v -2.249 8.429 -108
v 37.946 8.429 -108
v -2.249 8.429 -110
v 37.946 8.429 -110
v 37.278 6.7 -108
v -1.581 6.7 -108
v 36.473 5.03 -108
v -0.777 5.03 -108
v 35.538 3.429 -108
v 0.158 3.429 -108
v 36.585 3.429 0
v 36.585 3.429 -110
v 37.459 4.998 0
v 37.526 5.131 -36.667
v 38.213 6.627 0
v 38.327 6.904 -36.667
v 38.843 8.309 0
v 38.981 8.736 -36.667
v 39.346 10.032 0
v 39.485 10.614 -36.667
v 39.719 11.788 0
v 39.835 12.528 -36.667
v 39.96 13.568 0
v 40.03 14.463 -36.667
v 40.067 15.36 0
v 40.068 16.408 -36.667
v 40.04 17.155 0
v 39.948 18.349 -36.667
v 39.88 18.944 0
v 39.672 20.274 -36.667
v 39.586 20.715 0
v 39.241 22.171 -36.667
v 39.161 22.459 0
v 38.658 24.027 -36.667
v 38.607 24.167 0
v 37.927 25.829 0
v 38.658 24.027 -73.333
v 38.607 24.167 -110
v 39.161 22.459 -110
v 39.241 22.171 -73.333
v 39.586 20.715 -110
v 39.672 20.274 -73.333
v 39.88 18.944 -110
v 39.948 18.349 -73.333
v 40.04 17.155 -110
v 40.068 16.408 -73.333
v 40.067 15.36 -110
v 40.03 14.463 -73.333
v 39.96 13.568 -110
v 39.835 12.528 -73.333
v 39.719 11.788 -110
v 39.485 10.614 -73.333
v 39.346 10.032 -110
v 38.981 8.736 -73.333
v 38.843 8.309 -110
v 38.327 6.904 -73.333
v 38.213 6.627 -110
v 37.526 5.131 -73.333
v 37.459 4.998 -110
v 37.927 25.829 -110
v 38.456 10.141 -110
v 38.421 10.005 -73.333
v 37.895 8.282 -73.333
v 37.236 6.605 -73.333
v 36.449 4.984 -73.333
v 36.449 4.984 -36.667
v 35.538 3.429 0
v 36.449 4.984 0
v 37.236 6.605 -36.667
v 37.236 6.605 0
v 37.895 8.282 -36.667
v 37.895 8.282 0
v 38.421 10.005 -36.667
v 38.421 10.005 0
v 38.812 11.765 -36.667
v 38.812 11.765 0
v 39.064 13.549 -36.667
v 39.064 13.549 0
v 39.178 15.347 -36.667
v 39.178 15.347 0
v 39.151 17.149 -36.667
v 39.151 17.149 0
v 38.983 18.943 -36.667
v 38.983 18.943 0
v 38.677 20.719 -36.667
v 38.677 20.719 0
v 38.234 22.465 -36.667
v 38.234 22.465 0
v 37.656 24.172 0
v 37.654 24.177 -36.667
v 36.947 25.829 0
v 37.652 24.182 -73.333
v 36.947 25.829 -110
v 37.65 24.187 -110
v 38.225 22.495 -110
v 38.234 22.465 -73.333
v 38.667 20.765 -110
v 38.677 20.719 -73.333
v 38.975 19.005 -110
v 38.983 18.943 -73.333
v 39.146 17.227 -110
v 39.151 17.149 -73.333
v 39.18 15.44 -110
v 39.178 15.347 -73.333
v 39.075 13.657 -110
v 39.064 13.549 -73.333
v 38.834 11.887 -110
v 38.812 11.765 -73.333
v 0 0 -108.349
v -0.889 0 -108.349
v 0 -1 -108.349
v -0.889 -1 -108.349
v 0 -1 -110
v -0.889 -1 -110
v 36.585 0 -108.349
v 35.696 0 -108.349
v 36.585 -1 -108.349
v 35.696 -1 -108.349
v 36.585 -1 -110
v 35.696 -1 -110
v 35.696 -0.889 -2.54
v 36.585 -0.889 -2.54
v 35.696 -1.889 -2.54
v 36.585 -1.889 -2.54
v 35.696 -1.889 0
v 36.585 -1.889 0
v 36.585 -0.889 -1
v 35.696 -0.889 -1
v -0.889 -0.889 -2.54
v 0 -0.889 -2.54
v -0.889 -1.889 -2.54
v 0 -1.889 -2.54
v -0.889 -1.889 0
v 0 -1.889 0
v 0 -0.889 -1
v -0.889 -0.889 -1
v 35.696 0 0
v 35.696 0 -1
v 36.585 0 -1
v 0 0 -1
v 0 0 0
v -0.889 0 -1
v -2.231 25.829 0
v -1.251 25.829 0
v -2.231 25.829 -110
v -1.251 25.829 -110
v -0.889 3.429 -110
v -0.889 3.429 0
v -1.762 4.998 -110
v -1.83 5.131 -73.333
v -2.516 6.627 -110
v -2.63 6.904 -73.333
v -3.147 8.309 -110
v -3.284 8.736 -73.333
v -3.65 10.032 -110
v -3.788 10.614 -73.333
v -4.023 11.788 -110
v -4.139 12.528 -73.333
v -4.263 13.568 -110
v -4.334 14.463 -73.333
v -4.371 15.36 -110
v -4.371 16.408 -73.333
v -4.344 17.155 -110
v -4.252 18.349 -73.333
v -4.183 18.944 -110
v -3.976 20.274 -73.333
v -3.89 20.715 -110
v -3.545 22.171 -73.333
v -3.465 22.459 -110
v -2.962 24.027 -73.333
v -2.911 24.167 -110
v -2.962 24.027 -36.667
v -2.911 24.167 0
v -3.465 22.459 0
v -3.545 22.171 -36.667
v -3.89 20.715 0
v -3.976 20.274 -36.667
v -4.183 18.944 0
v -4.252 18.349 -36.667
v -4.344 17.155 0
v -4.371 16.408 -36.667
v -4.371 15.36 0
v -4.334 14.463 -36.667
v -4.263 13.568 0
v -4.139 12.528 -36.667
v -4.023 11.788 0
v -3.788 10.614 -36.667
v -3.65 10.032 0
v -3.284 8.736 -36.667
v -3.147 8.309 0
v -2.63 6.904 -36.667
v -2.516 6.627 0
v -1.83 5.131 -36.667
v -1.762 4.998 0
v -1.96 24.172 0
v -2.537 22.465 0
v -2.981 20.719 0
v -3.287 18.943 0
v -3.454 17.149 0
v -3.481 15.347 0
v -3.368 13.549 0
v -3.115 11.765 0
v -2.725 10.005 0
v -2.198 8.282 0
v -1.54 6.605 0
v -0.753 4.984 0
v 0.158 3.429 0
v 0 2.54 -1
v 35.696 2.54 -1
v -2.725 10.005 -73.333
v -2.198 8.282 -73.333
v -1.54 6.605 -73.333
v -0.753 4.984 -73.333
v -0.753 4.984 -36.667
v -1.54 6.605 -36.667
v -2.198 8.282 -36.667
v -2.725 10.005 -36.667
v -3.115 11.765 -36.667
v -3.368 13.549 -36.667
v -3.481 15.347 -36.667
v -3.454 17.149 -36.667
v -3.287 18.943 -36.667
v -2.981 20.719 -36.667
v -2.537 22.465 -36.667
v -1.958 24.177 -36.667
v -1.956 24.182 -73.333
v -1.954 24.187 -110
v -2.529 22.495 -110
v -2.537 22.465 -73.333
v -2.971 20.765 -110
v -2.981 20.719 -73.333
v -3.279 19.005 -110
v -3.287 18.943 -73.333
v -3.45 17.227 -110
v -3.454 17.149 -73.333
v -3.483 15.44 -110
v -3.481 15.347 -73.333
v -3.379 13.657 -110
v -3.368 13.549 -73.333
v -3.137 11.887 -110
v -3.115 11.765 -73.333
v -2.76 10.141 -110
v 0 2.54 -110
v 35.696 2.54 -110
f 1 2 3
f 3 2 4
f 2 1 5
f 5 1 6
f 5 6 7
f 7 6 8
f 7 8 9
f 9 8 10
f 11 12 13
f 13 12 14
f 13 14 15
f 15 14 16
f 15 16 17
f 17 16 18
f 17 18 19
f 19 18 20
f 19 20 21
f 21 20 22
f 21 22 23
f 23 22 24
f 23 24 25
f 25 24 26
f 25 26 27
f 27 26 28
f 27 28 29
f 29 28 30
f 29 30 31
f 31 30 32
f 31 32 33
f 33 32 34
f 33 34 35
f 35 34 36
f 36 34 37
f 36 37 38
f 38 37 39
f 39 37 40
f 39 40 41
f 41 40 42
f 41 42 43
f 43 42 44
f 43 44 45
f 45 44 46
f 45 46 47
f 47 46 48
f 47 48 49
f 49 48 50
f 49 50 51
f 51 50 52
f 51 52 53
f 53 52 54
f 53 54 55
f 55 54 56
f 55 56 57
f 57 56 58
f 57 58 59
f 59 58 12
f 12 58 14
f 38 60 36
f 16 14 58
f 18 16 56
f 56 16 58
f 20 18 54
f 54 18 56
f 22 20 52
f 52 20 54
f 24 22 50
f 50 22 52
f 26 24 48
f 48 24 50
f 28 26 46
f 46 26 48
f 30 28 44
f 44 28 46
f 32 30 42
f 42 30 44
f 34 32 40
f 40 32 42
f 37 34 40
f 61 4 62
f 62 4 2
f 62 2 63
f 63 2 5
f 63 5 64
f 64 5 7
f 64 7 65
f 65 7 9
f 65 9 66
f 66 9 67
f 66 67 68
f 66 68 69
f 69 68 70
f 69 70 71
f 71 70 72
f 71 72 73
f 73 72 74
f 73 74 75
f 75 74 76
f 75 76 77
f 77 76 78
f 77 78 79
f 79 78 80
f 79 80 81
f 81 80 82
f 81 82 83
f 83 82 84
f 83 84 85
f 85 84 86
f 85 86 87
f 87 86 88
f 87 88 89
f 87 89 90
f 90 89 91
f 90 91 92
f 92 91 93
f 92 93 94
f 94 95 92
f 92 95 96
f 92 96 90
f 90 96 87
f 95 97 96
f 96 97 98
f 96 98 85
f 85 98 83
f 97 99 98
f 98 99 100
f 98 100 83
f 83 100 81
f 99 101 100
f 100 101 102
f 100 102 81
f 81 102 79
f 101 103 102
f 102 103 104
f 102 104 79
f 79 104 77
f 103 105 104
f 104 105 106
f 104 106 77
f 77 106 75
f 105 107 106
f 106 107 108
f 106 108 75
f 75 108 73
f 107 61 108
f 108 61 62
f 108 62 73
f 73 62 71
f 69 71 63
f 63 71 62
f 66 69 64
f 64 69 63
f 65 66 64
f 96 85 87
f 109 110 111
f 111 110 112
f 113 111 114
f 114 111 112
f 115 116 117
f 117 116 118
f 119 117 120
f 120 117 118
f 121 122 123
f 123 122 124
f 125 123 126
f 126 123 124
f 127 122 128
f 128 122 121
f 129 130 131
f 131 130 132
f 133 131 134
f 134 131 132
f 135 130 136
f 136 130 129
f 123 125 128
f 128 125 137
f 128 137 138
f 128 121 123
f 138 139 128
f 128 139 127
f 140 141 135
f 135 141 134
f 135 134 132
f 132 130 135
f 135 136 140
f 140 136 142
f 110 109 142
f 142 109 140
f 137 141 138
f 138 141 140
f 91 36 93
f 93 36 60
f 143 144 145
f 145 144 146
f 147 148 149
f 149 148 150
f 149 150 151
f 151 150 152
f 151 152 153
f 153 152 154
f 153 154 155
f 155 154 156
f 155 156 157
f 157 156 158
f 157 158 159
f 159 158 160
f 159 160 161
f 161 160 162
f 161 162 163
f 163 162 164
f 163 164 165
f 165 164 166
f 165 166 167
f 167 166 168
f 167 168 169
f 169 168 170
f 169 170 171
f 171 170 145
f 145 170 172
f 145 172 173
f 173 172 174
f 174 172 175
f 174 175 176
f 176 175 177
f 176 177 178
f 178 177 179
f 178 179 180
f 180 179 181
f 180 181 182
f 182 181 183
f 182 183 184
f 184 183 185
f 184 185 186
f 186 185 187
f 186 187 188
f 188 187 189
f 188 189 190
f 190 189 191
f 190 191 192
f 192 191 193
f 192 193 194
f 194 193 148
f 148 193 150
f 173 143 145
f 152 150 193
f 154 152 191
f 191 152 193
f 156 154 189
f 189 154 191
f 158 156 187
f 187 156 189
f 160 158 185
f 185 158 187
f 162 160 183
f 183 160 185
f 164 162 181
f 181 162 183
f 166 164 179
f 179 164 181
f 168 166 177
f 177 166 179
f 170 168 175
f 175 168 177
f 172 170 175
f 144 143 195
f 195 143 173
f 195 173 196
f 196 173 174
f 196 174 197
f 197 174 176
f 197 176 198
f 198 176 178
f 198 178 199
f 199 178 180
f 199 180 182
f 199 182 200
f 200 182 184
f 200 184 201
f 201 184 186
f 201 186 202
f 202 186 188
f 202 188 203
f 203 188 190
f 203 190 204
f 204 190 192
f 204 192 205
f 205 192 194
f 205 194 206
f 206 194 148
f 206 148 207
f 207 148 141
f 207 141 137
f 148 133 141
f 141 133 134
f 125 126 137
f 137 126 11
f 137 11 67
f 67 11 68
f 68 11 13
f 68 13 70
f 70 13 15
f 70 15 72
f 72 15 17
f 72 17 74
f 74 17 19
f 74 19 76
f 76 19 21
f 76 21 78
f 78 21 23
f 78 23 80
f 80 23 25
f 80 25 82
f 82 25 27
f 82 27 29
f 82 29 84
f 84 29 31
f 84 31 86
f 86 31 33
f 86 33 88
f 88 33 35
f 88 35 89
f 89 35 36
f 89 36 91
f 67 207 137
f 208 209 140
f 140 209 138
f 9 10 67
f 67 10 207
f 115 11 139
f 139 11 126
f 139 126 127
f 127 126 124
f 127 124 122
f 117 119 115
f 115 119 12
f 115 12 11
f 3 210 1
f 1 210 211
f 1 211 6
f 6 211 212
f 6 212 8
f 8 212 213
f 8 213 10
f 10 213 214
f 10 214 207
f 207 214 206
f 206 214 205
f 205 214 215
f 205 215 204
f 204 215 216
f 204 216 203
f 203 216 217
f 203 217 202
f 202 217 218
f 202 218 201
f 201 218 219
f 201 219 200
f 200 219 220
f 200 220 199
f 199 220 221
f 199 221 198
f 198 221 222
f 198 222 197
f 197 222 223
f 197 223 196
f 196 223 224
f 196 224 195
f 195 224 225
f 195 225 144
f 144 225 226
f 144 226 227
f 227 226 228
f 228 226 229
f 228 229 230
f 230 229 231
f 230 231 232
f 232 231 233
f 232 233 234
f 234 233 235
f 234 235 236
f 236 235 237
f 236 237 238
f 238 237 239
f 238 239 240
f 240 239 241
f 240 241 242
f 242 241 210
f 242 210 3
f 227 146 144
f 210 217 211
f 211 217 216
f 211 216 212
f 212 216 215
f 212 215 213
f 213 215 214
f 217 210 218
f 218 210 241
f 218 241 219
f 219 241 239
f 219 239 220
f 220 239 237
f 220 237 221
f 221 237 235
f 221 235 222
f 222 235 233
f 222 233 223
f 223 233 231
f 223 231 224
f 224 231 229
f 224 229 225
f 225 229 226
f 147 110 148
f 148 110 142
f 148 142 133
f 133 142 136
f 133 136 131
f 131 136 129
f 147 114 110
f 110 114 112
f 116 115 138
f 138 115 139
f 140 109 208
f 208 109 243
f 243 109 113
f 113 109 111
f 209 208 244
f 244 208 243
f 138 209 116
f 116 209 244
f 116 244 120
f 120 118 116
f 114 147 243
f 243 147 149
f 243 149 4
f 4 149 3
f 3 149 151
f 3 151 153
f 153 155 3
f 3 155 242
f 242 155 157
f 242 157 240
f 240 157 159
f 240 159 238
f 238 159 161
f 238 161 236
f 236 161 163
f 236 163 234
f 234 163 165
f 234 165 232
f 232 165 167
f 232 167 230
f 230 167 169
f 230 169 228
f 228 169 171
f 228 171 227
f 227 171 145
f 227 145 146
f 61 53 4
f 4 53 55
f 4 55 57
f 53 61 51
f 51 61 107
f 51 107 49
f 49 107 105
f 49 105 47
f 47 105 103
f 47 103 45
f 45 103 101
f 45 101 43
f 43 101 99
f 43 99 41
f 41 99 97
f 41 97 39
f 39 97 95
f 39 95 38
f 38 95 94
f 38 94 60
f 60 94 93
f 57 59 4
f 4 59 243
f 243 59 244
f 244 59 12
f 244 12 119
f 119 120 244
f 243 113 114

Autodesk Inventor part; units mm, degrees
ref_plane "YZ Plane" through (0, 0, 0) normal (1, 0, 0) x (0, 1, 0)
ref_plane "XZ Plane" through (0, 0, 0) normal (0, 1, 0) x (-1, 0, 0)
ref_plane "XY Plane" through (0, 0, 0) normal (0, 0, 1) x (1, 0, 0)
sketch "Sketch1" plane through (0, 0, 0) normal (0, 0, 1) x (1, 0, 0)
  line L0 (0, 0) -> (0, 2.54)
  line L1 (0, 2.54) -> (35.6964, 2.54)
  line L2 (35.6964, 2.54) -> (35.6964, 0)
  line L3 (-0.889, 0) -> (-0.889, 3.429)
  line L4 (-0.889, 3.429) -> (36.5854, 3.429)
  line L5 (36.5854, 3.429) -> (36.5854, 0)
  line L6 (-0.889, 0) -> (0, 0)
  line L7 (35.6964, 0) -> (36.5854, 0)
  line L8 (33.7232, 32.179) -> (1.9732, 32.179)
  arc A0 (36.5854, 3.429) -> (33.7232, 32.179) centre (16.0324, 15.9003) ccw
  line L9 (17.8482, 3.429) -> (17.8482, 32.179) construction
  arc A1 (1.9732, 32.179) -> (-0.889, 3.429) centre (19.664, 15.9003) ccw
  line L10 (40.0732, 15.9003) -> (-4.3768, 15.9003)
  arc A2 (35.5381, 3.429) -> (33.3287, 31.29) centre (16.0324, 15.9003) ccw
  line L11 (33.3287, 31.29) -> (2.3677, 31.29)
  arc A3 (2.3677, 31.29) -> (0.1583, 3.429) centre (19.664, 15.9003) ccw
  dimension "d0" = 35.6964
  dimension "d1" = 2.54
  dimension "d2" = 2.54
  dimension "d3" = 0.889
  dimension "d11" = 28.75
  dimension "d14" = 31.75
  dimension "d15" = 0
  dimension "d16" = 44.45
  dimension "d17" = 0.889
extrude "Extrusion1" add sketch "Sketch1" against normal blind 110 contours L6 L3 L4 L5 L7 L2 L1 L0 | A1 L10 A3 L4 | A1 L8 A0 L10 A2 L11 A3 | A2 L10 A0 L4
sketch "Sketch2" plane through (0, 0, 0) normal (0, 0, 1) x (1, 0, 0)
  line L0 (-0.889, 3.429) -> (36.5854, 3.429)
  line L1 (36.5854, 3.429) -> (36.5854, 0)
  line L2 (36.5854, 0) -> (-0.889, 0)
  line L3 (-0.889, 0) -> (-0.889, 3.429)
  line L4 (36.5854, 0) -> (36.5854, 3.429) projected
  line L5 (35.6964, 0) -> (36.5854, 0) projected
  line L6 (35.5381, 3.429) -> (0.1583, 3.429) projected
  line L7 (-0.889, 3.429) -> (-0.889, 0) projected
extrude "Extrusion2" add sketch "Sketch2" against normal blind 1
sketch "Sketch3" plane through (0, 0, -110) normal (0, 0, -1) x (-1, 0, 0)
  arc A0 (-33.7232, 32.179) -> (-36.5854, 3.429) centre (-16.0324, 15.9003) ccw projected
  line L0 (-37.9272, 25.829) -> (2.2308, 25.829)
  line L1 (2.2308, 25.829) -> (2.2308, 32.179)
  line L2 (2.2308, 32.179) -> (-37.9272, 32.179)
  line L3 (-37.9272, 32.179) -> (-37.9272, 25.829)
  line L4 (-1.9732, 32.179) -> (-33.7232, 32.179) projected
  line L5 (-17.8482, 32.179) -> (-17.8482, 3.429)
  line L6 (-35.5381, 3.429) -> (-0.1583, 3.429) projected
  point P0 (0, 0)
  dimension "d18" = 0
  dimension "d19" = 6.35
extrude "Extrusion3" cut sketch "Sketch3" against normal through all contours L2 L5 L0 A0 | L2 L1 L0 L5
sketch "Sketch4" plane through (0, 0, 0) normal (0, 0, 1) x (1, 0, 0)
  line L0 (35.6964, 0) -> (35.6964, 2.54) projected
  line L1 (35.6964, 0) -> (36.5854, 0)
  line L2 (36.5854, 0) -> (36.5854, -0.889)
  line L3 (36.5854, -0.889) -> (35.6964, -0.889)
  line L4 (35.6964, -0.889) -> (35.6964, 0)
  line L5 (36.5854, 0) -> (36.5854, 3.429) projected
  line L6 (0, 0) -> (-0.889, 0)
  line L7 (-0.889, 0) -> (-0.889, -0.889)
  line L8 (-0.889, -0.889) -> (0, -0.889)
  line L9 (0, -0.889) -> (0, 0)
  line L10 (-0.889, 3.429) -> (-0.889, 0) projected
  dimension "d23" = 0.889
  dimension "d24" = 0.889
extrude "Extrusion4" add sketch "Sketch4" against normal blind 1
sketch "Sketch5" plane through (-0.889, -0.889, 0) normal (0, -1, 0) x (1, 0, 0)
  line L0 (0.889, 0) -> (0.889, -1) projected
  line L1 (0, -1) -> (0, -110) projected
  line L2 (0.889, 0) -> (0, 0)
  line L3 (0, 0) -> (0, -2.54)
  line L4 (0, -2.54) -> (0.889, -2.54)
  line L5 (0.889, -2.54) -> (0.889, 0)
  line L6 (37.4744, 0) -> (37.4744, -110) projected
  line L7 (37.4744, 0) -> (36.5854, 0)
  line L8 (36.5854, 0) -> (36.5854, -2.54)
  line L9 (36.5854, -2.54) -> (37.4744, -2.54)
  line L10 (37.4744, -2.54) -> (37.4744, 0)
  line L11 (36.5854, -1) -> (36.5854, -110) projected
  dimension "d27" = 2.54
  dimension "d28" = 2.54
extrude "Extrusion5" add sketch "Sketch5" along normal blind 1
sketch "Sketch6" plane through (35.6964, 0, -110) normal (0, -1, 0) x (1, 0, 0)
  line L0 (0.889, 110) -> (0.889, 0) projected
  line L1 (0, 109) -> (0, 0) projected
  line L2 (0.889, 0) -> (0, 0)
  line L3 (0, 0) -> (0, 1.651)
  line L4 (0, 1.651) -> (0.889, 1.651)
  line L5 (0.889, 1.651) -> (0.889, 0)
  line L6 (-36.5854, 109) -> (-36.5854, 0) projected
  line L7 (-35.6964, 109) -> (-35.6964, 0) projected
  line L8 (-36.5854, 0) -> (-35.6964, 0)
  line L9 (-35.6964, 0) -> (-35.6964, 1.651)
  line L10 (-35.6964, 1.651) -> (-36.5854, 1.651)
  line L11 (-36.5854, 1.651) -> (-36.5854, 0)
  point P0 (-35.6964, 110)
  point P1 (-36.5854, 1.651)
  point P2 (0.889, 1.651)
  dimension "d31" = 1.651
  dimension "d32" = 1.651
extrude "Extrusion6" add sketch "Sketch6" along normal blind 1
sketch "Sketch7" plane through (0, 0, -110) normal (0, 0, -1) x (-1, 0, 0)
  arc A0 (-37.9272, 25.829) -> (-36.5854, 3.429) centre (-16.0324, 15.9003) ccw projected
  arc A1 (-37.9272, 25.829) -> (-36.5854, 3.429) centre (-16.0324, 15.9003) ccw
  arc A2 (0.889, 3.429) -> (2.2308, 25.829) centre (-19.664, 15.9003) ccw projected
  arc A3 (0.889, 3.429) -> (2.2308, 25.829) centre (-19.664, 15.9003) ccw
  line L0 (-36.5854, 3.429) -> (0.889, 3.429)
  line L1 (-35.6964, 2.54) -> (0, 2.54) projected
  line L2 (-38.8828, 8.429) -> (3.1864, 8.429)
  point P0 (0, 0)
  point P1 (3.1864, 8.429)
  dimension "d35" = 5
extrude "Extrusion7" add sketch "Sketch7" against normal blind 2
properties part number "PCB Battery Tray_3DPrint"
